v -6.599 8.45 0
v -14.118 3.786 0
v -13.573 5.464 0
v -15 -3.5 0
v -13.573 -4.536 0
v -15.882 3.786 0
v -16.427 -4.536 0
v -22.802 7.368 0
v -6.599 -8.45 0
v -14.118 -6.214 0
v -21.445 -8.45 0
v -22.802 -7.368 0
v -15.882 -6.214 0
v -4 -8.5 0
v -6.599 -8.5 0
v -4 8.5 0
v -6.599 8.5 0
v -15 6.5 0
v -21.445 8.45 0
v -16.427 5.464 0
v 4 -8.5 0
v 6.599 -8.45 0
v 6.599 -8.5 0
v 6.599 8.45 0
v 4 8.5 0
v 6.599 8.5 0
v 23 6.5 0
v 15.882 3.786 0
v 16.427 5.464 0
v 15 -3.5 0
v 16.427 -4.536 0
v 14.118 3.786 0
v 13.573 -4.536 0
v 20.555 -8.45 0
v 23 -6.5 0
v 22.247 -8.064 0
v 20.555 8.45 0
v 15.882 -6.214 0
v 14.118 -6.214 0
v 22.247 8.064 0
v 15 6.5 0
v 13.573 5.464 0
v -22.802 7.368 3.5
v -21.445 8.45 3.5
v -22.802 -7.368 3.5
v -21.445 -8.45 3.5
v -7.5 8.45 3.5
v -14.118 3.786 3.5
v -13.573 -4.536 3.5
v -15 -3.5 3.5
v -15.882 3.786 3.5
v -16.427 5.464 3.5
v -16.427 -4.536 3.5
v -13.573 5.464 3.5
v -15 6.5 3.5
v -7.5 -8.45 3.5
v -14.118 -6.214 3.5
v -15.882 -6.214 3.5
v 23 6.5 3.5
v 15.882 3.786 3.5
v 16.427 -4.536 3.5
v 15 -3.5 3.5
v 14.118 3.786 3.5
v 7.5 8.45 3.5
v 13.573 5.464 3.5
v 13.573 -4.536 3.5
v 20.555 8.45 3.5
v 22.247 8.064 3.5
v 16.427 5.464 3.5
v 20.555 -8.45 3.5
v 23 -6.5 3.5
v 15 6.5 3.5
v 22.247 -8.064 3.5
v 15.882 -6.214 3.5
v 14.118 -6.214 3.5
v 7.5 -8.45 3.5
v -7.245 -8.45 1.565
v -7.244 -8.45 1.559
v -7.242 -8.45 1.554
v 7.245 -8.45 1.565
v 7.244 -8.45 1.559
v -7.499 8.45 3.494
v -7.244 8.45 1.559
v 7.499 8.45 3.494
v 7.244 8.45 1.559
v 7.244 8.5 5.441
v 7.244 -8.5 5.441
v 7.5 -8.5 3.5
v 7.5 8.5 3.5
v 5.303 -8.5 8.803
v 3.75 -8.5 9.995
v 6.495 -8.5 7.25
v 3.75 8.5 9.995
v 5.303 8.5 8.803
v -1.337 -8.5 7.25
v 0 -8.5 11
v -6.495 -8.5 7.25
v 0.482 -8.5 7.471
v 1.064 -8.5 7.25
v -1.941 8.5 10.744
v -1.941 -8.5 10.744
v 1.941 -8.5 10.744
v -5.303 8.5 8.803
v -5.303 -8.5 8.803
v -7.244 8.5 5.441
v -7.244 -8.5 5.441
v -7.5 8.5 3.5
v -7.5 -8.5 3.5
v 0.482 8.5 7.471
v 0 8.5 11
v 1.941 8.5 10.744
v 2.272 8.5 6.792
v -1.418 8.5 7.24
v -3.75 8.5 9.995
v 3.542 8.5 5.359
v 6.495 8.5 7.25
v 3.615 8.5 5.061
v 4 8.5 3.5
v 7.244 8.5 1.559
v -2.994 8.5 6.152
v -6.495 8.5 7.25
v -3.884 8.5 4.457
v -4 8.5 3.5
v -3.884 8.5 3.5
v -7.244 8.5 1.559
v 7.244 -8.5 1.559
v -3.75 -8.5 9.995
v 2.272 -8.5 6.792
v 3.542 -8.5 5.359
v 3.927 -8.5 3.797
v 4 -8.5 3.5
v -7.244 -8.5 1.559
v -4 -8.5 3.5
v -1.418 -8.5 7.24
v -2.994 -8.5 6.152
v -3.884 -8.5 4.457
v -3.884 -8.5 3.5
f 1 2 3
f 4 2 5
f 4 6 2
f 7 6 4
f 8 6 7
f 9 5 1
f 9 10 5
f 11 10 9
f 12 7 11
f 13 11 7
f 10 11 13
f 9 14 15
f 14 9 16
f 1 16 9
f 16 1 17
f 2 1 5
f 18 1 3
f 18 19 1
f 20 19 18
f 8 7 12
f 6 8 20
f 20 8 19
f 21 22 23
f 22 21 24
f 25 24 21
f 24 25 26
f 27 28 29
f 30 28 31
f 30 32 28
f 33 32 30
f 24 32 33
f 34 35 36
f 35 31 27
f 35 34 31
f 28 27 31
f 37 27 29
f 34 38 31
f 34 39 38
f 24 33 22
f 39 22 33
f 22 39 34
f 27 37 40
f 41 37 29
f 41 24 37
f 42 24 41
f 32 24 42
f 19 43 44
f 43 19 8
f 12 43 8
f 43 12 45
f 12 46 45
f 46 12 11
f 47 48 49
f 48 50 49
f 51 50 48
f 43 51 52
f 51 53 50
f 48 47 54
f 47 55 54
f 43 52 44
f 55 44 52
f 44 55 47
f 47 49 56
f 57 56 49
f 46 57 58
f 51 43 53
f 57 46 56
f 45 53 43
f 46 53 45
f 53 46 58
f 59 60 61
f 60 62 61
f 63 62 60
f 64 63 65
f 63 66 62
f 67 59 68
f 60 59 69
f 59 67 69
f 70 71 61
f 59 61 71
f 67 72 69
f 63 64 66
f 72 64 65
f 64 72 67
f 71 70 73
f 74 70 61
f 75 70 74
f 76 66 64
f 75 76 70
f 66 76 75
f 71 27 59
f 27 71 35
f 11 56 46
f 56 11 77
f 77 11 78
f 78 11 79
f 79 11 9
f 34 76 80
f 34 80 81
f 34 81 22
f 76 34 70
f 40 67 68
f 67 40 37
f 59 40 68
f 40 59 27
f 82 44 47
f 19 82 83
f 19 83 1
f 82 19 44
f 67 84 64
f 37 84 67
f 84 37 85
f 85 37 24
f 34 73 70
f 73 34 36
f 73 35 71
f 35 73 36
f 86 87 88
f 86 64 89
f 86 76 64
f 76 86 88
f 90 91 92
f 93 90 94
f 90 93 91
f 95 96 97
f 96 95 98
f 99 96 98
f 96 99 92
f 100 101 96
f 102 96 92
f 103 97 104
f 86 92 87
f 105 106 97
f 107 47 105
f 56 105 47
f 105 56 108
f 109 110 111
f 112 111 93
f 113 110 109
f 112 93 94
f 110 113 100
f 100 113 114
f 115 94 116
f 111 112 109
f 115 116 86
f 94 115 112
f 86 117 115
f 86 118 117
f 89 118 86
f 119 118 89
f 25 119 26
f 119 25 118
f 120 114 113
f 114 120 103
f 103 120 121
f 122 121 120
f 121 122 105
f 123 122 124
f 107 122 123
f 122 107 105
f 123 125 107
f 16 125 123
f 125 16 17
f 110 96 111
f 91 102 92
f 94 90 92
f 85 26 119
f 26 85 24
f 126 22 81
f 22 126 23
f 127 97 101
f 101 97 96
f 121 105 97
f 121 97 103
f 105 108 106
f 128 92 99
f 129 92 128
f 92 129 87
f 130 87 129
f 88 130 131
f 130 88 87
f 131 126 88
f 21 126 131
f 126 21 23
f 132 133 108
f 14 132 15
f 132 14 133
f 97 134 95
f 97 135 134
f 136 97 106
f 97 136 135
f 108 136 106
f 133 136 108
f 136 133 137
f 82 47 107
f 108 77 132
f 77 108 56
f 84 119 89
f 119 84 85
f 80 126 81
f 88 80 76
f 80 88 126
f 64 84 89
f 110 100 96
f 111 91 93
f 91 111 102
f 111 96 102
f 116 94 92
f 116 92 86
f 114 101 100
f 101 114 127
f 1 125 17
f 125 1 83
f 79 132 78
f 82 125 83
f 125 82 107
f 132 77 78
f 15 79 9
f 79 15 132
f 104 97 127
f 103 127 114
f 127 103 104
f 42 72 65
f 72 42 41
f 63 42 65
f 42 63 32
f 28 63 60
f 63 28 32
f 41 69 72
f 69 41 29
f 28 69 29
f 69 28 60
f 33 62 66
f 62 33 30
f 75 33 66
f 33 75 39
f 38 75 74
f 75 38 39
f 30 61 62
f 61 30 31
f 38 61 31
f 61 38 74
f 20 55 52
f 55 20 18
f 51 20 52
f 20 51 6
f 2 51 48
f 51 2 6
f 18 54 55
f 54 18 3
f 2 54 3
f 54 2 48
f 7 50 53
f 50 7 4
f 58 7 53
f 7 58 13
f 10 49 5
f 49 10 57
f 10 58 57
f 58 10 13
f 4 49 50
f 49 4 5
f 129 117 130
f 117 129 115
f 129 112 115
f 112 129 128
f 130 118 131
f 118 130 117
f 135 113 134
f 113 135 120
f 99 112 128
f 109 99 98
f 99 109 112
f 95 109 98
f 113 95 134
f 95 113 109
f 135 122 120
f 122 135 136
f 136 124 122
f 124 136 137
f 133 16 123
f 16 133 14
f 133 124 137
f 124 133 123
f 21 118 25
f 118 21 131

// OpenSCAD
difference() {
    difference() {
        union() {
            color("yellow", 1) roundedRect([44, 15, 3.5], 2);
            color("yellow", 1) translate([0, 0, 3.5]) rotate([90, 0, 0]) cylinder(17, 7.5, 7.5, true);
        }
        union() {
            color("red", 1)  translate([0, 0, -2]) cube([46, 19, 4], true);
            color("red", 1) translate([15, 5, 4]) rotate([0, 0, 90]) cylinder(25, 1.5, 1.5, true);
            color("red", 1) translate([15, -5, 4]) rotate([0, 0, 90]) cylinder(25, 1.5, 1.5, true);
            color("red", 1) translate([-15, 5, 4]) rotate([0, 0, 90]) cylinder(25, 1.5, 1.5, true);
            color("red", 1) translate([-15, -5, 4]) rotate([0, 0, 90]) cylinder(25, 1.5, 1.5, true);
        }
    }
    union() {
        color("blue", 1) translate([0, 0, 3.5]) rotate([90, 0, 0]) cylinder(25, 4, 4, true);
        color("blue", 1)  translate([0, 0, -1]) cube([8, 25, 9], true);
    }
}


module roundedRect(size, radius)
{
    x = size[0];
    y = size[1];
    z = size[2];

    linear_extrude(height=z)
    hull()
    {
        // place 4 circles in the corners, with the given radius
        translate([(-x/2)+(radius/2), (-y/2)+(radius/2), 0])
        circle(r=radius);

        translate([(x/2)-(radius/2), (-y/2)+(radius/2), 0])
        circle(r=radius);

        translate([(-x/2)+(radius/2), (y/2)-(radius/2), 0])
        circle(r=radius);

        translate([(x/2)-(radius/2), (y/2)-(radius/2), 0])
        circle(r=radius);
    }
}
